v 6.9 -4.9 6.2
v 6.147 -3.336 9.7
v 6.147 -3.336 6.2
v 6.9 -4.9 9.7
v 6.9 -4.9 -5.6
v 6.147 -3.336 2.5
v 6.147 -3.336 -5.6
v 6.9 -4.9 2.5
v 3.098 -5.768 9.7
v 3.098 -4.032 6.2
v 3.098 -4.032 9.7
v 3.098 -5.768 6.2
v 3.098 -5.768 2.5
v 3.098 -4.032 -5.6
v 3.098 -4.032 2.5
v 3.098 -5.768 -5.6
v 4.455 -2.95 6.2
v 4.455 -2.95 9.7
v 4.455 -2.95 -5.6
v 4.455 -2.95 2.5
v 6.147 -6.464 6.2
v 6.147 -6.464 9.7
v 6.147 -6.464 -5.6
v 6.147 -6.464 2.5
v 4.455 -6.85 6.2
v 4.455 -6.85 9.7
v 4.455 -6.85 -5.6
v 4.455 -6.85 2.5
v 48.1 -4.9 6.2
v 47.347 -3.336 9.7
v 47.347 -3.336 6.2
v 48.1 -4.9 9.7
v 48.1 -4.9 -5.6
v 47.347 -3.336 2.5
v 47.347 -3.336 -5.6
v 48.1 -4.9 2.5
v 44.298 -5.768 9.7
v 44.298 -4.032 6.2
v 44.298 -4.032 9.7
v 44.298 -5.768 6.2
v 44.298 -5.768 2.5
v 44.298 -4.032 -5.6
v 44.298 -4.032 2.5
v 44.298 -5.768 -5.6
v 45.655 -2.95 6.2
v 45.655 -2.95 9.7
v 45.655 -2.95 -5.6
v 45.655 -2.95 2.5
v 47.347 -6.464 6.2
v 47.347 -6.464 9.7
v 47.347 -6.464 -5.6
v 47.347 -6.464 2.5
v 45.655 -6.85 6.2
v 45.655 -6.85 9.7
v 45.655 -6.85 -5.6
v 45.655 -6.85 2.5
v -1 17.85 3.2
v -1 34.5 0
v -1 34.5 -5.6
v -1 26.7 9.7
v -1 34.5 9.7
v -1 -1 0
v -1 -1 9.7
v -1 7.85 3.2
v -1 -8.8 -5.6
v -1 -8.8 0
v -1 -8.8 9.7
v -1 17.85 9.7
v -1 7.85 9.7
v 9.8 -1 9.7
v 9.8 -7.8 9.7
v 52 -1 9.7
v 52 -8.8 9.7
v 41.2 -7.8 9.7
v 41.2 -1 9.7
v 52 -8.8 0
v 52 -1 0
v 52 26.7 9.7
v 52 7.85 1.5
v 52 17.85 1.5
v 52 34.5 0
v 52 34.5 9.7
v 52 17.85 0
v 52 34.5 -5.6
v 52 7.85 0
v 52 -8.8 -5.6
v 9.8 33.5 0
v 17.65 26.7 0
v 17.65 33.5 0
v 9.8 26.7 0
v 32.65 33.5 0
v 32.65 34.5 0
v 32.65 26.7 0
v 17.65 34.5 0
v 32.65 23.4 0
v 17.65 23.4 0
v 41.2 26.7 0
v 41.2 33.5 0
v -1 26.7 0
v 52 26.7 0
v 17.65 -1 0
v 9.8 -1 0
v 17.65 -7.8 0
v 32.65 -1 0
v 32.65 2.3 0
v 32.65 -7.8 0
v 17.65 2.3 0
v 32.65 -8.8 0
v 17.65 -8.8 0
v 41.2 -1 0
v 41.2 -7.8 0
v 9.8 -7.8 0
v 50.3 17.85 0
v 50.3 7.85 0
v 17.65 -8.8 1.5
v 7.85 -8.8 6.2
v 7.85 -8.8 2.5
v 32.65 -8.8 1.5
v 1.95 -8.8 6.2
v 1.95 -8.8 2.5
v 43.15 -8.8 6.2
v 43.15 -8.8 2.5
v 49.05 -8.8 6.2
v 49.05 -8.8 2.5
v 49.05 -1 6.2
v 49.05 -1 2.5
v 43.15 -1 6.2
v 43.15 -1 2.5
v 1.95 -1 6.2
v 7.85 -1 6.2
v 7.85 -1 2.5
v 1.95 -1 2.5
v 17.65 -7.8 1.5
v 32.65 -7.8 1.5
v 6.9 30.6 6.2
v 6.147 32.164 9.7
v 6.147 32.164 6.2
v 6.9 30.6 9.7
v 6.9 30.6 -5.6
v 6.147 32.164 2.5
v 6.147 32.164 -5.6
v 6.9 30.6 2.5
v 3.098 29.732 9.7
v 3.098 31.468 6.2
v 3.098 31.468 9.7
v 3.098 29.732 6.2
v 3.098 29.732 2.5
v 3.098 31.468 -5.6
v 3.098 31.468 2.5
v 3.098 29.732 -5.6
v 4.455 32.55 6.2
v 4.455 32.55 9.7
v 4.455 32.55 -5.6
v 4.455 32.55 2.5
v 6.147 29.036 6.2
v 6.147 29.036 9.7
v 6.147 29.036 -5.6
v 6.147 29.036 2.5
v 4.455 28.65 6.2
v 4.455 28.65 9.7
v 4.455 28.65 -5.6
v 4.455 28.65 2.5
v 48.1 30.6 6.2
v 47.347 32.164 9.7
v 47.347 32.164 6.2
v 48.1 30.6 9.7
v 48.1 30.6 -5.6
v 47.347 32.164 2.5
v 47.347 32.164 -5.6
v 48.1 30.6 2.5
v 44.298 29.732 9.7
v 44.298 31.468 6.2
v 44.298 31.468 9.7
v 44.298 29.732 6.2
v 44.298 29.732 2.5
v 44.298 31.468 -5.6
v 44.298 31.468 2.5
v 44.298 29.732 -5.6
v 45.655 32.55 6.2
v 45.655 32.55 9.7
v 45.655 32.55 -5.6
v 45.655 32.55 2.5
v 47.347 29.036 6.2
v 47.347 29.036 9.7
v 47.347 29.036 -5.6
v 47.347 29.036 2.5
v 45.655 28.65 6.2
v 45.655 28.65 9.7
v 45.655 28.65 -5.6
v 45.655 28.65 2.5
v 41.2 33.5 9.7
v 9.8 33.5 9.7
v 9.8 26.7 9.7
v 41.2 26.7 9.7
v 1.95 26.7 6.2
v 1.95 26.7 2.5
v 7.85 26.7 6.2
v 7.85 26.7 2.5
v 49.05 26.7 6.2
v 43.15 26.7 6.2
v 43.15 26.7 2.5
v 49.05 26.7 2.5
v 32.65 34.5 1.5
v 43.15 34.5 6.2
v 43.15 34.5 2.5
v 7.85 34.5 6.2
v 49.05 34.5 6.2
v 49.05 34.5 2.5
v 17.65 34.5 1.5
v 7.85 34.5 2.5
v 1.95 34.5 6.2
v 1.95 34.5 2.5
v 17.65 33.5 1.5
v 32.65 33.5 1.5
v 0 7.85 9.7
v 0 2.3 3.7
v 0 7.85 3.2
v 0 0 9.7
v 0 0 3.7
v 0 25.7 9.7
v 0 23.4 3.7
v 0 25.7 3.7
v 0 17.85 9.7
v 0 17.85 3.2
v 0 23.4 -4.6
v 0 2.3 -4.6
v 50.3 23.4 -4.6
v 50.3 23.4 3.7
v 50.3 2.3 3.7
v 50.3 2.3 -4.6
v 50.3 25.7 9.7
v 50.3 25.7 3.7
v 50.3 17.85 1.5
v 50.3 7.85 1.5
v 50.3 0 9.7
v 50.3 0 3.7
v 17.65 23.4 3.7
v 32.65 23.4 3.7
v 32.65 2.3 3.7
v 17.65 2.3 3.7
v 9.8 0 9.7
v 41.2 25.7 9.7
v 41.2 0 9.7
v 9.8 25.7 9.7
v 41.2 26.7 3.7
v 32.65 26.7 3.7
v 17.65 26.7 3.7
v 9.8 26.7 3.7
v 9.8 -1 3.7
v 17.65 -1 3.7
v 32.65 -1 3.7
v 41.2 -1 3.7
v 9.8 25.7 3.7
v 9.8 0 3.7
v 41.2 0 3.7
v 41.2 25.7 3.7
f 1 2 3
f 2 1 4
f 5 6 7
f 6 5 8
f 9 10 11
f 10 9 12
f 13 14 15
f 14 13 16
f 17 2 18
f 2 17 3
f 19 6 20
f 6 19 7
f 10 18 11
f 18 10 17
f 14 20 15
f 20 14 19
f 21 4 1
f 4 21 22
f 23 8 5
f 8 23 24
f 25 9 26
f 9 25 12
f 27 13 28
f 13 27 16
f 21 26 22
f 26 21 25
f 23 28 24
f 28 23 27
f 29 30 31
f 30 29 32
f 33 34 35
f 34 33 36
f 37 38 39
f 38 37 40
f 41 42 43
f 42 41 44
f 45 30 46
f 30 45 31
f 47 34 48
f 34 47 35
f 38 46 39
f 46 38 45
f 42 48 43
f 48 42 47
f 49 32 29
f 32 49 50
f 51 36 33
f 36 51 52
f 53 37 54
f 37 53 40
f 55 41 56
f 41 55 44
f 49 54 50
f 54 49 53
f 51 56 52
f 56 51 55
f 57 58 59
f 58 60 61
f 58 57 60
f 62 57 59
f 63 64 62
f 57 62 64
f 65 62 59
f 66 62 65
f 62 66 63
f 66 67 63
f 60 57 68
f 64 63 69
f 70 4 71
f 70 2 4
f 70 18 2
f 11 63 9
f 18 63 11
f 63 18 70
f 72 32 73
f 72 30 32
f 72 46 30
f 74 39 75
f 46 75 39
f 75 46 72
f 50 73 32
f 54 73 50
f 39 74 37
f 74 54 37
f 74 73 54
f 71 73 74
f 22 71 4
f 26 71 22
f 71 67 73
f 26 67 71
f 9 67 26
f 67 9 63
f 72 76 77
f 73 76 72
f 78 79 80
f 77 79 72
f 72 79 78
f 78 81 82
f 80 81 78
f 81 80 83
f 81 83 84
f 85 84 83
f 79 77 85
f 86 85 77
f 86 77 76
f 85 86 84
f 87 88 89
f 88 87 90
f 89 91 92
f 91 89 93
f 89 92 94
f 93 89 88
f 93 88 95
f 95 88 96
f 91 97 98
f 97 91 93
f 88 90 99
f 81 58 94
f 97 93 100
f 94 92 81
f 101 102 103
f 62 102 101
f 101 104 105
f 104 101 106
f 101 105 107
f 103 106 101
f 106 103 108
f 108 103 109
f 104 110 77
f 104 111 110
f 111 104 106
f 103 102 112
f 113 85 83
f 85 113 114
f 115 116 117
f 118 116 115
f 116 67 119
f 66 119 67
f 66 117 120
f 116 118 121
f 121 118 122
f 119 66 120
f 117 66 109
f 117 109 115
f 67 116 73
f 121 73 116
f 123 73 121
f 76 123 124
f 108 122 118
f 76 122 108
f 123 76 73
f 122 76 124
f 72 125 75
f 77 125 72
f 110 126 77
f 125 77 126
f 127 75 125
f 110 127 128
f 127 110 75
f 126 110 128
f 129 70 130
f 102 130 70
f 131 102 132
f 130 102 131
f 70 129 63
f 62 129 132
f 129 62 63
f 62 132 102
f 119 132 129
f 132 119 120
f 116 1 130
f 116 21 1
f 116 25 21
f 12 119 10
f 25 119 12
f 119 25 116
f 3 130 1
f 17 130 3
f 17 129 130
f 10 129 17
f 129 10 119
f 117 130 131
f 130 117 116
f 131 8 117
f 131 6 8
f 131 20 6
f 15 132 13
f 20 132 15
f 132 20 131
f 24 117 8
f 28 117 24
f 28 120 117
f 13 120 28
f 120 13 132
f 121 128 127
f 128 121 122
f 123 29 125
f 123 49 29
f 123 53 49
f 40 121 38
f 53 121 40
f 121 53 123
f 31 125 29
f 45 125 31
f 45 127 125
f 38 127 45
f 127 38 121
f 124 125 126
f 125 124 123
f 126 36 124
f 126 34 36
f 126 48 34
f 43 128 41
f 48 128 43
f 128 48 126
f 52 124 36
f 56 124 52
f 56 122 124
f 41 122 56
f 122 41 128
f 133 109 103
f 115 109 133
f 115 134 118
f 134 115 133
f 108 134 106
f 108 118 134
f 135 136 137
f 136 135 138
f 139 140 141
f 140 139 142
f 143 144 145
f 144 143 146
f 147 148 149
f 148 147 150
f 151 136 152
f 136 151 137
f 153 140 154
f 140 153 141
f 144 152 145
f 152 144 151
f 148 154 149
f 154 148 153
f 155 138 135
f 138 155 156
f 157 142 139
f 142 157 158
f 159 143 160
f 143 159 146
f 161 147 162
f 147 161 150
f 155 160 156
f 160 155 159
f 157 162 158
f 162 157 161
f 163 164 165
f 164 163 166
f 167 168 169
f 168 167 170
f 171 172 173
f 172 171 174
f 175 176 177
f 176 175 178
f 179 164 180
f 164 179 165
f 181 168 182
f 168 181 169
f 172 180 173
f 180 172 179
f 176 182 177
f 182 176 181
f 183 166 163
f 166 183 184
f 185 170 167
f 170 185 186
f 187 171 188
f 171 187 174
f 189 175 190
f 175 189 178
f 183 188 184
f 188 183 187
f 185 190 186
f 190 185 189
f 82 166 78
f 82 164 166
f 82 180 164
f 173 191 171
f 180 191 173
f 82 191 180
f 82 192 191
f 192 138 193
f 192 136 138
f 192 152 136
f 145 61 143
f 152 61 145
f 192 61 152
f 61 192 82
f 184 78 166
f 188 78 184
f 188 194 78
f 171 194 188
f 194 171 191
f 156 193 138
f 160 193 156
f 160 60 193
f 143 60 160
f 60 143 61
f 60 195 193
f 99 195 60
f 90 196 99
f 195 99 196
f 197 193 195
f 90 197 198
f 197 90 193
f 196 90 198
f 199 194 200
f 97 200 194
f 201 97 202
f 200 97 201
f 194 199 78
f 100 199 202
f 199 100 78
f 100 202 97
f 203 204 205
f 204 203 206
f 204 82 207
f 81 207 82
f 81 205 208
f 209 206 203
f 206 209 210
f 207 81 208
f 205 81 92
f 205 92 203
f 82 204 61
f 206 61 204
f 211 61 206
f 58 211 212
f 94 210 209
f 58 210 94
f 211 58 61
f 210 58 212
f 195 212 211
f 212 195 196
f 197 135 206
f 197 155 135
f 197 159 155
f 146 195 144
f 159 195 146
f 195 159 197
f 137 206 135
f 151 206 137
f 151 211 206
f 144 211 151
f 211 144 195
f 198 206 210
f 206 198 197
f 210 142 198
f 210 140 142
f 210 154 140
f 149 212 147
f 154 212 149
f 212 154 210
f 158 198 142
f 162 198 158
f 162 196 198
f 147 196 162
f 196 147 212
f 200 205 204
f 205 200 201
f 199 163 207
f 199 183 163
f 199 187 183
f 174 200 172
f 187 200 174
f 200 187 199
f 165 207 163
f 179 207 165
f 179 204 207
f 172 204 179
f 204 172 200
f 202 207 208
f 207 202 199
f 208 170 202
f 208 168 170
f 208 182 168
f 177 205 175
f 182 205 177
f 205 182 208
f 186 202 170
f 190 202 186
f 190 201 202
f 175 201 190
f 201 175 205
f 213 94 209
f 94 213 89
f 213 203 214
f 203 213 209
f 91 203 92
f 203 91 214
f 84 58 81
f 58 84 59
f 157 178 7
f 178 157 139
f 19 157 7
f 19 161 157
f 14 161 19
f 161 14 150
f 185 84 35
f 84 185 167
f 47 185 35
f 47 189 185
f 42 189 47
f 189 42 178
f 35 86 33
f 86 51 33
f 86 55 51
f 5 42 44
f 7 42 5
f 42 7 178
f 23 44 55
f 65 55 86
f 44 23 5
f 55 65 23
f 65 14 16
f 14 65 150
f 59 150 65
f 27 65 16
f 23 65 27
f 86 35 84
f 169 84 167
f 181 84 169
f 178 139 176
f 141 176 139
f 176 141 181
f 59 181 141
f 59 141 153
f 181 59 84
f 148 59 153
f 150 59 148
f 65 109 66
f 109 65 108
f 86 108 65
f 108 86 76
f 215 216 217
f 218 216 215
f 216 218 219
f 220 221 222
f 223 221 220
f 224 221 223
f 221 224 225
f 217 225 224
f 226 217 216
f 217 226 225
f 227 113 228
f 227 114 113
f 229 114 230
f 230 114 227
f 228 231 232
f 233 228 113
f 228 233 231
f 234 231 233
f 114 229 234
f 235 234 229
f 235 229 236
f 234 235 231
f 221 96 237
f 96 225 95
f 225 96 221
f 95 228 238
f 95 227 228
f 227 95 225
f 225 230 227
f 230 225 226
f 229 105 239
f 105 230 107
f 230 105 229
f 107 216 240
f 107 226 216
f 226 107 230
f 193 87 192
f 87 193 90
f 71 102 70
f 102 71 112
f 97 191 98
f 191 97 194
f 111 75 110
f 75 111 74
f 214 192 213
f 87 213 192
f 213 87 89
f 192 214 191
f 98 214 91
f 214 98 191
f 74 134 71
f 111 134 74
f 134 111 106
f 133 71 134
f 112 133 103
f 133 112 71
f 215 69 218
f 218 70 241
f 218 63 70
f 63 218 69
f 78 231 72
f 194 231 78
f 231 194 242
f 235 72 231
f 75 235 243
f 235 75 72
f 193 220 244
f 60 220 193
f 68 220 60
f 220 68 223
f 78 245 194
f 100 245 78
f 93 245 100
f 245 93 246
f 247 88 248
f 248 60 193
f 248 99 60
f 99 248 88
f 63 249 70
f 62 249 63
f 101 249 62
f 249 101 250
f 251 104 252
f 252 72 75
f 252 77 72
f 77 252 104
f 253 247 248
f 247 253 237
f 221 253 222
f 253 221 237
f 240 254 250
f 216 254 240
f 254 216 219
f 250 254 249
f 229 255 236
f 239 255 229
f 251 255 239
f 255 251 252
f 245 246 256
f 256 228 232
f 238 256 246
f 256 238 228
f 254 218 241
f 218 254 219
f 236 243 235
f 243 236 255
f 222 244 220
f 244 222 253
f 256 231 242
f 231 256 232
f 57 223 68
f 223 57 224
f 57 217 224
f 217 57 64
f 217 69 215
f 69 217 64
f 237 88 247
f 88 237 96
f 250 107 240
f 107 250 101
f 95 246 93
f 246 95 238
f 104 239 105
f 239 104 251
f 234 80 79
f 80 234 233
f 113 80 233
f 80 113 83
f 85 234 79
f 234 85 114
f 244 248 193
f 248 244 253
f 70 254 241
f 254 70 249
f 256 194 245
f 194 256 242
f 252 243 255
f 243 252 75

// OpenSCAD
wall_thickness=1;
case_depth=3.5+3.7+1.5+wall_thickness+1;
pcb_length=50.3; // Originally 51

case_width = 51;

riser_height = 4.6; // This is the amount of space underneath the assembly (to accomodate longer screws)


module below_pcb_carveout() {
    translate([0, (25.7-21.1)/2,-riser_height]) cube([pcb_length,21.1,3.7+0.01+riser_height]);
}

//cube([52,32.3,10]);
difference() {
    translate([-wall_thickness, -wall_thickness, 0]) cube([case_width+2*wall_thickness, 25.7+2*wall_thickness, case_depth-wall_thickness]);

    // Base (area below the PCB
    below_pcb_carveout();

    //PCB itself (extended above to case_depth)
    translate([0,0,3.7]) cube([pcb_length,25.7,1.5+case_depth]);

    // MicroUSB Port Hole
    translate([-wall_thickness*2, (25.7-10)/2, 3.7-0.5]) cube([wall_thickness*3, 10, case_depth]);
    
    // side air holes
    translate([pcb_length/2-15/2,-wall_thickness-0.1,0]) cube([15,25.7+2*wall_thickness+0.2,10]);
    
    // back air hole
    translate([pcb_length-0.1,25.7/2-10/2,0]) cube([wall_thickness+0.2+4,10,1.5]);
    
    translate([nut_post_width+wall_thickness*2,-nut_post_width, 3.7]) cube([case_width-2*nut_post_width-wall_thickness*4, nut_post_width*2+25.7,case_depth-wall_thickness-3]);

}


// Related to the "nut slot" posts
nut_width = 5.5;
nut_height = 2.5;
nut_post_width = nut_width + 2.3;
nut_hole_height = nut_height + 1.2;
nut_hole_width = nut_width + 0.4;

nut_hole_depth = (nut_post_width-nut_width)/2 + nut_width;


module make_nut_posts() {
        translate([nut_post_width/2+(wall_thickness*2),nut_post_width/2,-wall_thickness-0.1-riser_height]) cylinder(r=2, h=case_depth+wall_thickness*2+riser_height*2);
        translate([case_width-(nut_post_width/2+(wall_thickness*2))+2,nut_post_width/2,-wall_thickness-0.1-riser_height]) cylinder(r=2, h=case_depth+wall_thickness*2+riser_height*2);
}

module make_nut_wall() {
    difference() {
        cube([case_width+2*wall_thickness, nut_post_width, case_depth-wall_thickness]);

        make_nut_posts();

        // Nut holes
        translate([nut_post_width/2+(wall_thickness*2)-nut_hole_width/2,-1,case_depth/2-nut_hole_height/2-wall_thickness]) cube([nut_hole_width, nut_post_width+1, nut_hole_height]);
        translate([case_width-(nut_post_width/2+(wall_thickness*2))+2-nut_hole_width/2,-1,case_depth/2-nut_hole_height/2-wall_thickness]) cube([nut_hole_width, nut_post_width+1, nut_hole_height]);

        // side air holes
        translate([pcb_length/2-15/2+wall_thickness,-wall_thickness-0.1,0]) cube([15,25.7+2*wall_thickness+0.2,1.5]);
    }
}


module make_walls() {
    translate([-wall_thickness,-nut_post_width-wall_thickness,0]) make_nut_wall();
    translate([-wall_thickness,25.7+wall_thickness,0]) make_nut_wall();
}

difference() {
    make_walls();
    translate([nut_post_width+wall_thickness*2,-nut_post_width, -riser_height+wall_thickness]) cube([case_width-2*nut_post_width-wall_thickness*4, nut_post_width*2+25.7,case_depth+riser_height+wall_thickness]);
    //translate([nut_post_width+wall_thickness*2,-nut_post_width, 3.7]) cube([case_width-2*nut_post_width-wall_thickness*4, nut_post_width*2+25.7,case_depth-wall_thickness-3]);
}

// The actual base.

 difference() {
    translate([-wall_thickness, -nut_post_width-wall_thickness,-riser_height-wall_thickness]) cube([case_width+2*wall_thickness, nut_post_width*2+25.7+2*wall_thickness, riser_height+wall_thickness]);
    below_pcb_carveout();
    translate([-wall_thickness,-nut_post_width-wall_thickness,0]) make_nut_posts();
     translate([-wall_thickness,25.7+wall_thickness,0]) make_nut_posts();
}
